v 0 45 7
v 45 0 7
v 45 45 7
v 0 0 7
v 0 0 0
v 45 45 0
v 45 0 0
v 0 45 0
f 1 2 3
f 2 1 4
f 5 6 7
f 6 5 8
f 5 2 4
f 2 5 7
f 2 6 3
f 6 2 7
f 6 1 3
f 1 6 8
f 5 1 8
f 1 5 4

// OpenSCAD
// Suplemento para percha de puerta

altura  = 45;
anchura = 45;
grosor  = 7;

cube([altura, anchura, grosor]);
